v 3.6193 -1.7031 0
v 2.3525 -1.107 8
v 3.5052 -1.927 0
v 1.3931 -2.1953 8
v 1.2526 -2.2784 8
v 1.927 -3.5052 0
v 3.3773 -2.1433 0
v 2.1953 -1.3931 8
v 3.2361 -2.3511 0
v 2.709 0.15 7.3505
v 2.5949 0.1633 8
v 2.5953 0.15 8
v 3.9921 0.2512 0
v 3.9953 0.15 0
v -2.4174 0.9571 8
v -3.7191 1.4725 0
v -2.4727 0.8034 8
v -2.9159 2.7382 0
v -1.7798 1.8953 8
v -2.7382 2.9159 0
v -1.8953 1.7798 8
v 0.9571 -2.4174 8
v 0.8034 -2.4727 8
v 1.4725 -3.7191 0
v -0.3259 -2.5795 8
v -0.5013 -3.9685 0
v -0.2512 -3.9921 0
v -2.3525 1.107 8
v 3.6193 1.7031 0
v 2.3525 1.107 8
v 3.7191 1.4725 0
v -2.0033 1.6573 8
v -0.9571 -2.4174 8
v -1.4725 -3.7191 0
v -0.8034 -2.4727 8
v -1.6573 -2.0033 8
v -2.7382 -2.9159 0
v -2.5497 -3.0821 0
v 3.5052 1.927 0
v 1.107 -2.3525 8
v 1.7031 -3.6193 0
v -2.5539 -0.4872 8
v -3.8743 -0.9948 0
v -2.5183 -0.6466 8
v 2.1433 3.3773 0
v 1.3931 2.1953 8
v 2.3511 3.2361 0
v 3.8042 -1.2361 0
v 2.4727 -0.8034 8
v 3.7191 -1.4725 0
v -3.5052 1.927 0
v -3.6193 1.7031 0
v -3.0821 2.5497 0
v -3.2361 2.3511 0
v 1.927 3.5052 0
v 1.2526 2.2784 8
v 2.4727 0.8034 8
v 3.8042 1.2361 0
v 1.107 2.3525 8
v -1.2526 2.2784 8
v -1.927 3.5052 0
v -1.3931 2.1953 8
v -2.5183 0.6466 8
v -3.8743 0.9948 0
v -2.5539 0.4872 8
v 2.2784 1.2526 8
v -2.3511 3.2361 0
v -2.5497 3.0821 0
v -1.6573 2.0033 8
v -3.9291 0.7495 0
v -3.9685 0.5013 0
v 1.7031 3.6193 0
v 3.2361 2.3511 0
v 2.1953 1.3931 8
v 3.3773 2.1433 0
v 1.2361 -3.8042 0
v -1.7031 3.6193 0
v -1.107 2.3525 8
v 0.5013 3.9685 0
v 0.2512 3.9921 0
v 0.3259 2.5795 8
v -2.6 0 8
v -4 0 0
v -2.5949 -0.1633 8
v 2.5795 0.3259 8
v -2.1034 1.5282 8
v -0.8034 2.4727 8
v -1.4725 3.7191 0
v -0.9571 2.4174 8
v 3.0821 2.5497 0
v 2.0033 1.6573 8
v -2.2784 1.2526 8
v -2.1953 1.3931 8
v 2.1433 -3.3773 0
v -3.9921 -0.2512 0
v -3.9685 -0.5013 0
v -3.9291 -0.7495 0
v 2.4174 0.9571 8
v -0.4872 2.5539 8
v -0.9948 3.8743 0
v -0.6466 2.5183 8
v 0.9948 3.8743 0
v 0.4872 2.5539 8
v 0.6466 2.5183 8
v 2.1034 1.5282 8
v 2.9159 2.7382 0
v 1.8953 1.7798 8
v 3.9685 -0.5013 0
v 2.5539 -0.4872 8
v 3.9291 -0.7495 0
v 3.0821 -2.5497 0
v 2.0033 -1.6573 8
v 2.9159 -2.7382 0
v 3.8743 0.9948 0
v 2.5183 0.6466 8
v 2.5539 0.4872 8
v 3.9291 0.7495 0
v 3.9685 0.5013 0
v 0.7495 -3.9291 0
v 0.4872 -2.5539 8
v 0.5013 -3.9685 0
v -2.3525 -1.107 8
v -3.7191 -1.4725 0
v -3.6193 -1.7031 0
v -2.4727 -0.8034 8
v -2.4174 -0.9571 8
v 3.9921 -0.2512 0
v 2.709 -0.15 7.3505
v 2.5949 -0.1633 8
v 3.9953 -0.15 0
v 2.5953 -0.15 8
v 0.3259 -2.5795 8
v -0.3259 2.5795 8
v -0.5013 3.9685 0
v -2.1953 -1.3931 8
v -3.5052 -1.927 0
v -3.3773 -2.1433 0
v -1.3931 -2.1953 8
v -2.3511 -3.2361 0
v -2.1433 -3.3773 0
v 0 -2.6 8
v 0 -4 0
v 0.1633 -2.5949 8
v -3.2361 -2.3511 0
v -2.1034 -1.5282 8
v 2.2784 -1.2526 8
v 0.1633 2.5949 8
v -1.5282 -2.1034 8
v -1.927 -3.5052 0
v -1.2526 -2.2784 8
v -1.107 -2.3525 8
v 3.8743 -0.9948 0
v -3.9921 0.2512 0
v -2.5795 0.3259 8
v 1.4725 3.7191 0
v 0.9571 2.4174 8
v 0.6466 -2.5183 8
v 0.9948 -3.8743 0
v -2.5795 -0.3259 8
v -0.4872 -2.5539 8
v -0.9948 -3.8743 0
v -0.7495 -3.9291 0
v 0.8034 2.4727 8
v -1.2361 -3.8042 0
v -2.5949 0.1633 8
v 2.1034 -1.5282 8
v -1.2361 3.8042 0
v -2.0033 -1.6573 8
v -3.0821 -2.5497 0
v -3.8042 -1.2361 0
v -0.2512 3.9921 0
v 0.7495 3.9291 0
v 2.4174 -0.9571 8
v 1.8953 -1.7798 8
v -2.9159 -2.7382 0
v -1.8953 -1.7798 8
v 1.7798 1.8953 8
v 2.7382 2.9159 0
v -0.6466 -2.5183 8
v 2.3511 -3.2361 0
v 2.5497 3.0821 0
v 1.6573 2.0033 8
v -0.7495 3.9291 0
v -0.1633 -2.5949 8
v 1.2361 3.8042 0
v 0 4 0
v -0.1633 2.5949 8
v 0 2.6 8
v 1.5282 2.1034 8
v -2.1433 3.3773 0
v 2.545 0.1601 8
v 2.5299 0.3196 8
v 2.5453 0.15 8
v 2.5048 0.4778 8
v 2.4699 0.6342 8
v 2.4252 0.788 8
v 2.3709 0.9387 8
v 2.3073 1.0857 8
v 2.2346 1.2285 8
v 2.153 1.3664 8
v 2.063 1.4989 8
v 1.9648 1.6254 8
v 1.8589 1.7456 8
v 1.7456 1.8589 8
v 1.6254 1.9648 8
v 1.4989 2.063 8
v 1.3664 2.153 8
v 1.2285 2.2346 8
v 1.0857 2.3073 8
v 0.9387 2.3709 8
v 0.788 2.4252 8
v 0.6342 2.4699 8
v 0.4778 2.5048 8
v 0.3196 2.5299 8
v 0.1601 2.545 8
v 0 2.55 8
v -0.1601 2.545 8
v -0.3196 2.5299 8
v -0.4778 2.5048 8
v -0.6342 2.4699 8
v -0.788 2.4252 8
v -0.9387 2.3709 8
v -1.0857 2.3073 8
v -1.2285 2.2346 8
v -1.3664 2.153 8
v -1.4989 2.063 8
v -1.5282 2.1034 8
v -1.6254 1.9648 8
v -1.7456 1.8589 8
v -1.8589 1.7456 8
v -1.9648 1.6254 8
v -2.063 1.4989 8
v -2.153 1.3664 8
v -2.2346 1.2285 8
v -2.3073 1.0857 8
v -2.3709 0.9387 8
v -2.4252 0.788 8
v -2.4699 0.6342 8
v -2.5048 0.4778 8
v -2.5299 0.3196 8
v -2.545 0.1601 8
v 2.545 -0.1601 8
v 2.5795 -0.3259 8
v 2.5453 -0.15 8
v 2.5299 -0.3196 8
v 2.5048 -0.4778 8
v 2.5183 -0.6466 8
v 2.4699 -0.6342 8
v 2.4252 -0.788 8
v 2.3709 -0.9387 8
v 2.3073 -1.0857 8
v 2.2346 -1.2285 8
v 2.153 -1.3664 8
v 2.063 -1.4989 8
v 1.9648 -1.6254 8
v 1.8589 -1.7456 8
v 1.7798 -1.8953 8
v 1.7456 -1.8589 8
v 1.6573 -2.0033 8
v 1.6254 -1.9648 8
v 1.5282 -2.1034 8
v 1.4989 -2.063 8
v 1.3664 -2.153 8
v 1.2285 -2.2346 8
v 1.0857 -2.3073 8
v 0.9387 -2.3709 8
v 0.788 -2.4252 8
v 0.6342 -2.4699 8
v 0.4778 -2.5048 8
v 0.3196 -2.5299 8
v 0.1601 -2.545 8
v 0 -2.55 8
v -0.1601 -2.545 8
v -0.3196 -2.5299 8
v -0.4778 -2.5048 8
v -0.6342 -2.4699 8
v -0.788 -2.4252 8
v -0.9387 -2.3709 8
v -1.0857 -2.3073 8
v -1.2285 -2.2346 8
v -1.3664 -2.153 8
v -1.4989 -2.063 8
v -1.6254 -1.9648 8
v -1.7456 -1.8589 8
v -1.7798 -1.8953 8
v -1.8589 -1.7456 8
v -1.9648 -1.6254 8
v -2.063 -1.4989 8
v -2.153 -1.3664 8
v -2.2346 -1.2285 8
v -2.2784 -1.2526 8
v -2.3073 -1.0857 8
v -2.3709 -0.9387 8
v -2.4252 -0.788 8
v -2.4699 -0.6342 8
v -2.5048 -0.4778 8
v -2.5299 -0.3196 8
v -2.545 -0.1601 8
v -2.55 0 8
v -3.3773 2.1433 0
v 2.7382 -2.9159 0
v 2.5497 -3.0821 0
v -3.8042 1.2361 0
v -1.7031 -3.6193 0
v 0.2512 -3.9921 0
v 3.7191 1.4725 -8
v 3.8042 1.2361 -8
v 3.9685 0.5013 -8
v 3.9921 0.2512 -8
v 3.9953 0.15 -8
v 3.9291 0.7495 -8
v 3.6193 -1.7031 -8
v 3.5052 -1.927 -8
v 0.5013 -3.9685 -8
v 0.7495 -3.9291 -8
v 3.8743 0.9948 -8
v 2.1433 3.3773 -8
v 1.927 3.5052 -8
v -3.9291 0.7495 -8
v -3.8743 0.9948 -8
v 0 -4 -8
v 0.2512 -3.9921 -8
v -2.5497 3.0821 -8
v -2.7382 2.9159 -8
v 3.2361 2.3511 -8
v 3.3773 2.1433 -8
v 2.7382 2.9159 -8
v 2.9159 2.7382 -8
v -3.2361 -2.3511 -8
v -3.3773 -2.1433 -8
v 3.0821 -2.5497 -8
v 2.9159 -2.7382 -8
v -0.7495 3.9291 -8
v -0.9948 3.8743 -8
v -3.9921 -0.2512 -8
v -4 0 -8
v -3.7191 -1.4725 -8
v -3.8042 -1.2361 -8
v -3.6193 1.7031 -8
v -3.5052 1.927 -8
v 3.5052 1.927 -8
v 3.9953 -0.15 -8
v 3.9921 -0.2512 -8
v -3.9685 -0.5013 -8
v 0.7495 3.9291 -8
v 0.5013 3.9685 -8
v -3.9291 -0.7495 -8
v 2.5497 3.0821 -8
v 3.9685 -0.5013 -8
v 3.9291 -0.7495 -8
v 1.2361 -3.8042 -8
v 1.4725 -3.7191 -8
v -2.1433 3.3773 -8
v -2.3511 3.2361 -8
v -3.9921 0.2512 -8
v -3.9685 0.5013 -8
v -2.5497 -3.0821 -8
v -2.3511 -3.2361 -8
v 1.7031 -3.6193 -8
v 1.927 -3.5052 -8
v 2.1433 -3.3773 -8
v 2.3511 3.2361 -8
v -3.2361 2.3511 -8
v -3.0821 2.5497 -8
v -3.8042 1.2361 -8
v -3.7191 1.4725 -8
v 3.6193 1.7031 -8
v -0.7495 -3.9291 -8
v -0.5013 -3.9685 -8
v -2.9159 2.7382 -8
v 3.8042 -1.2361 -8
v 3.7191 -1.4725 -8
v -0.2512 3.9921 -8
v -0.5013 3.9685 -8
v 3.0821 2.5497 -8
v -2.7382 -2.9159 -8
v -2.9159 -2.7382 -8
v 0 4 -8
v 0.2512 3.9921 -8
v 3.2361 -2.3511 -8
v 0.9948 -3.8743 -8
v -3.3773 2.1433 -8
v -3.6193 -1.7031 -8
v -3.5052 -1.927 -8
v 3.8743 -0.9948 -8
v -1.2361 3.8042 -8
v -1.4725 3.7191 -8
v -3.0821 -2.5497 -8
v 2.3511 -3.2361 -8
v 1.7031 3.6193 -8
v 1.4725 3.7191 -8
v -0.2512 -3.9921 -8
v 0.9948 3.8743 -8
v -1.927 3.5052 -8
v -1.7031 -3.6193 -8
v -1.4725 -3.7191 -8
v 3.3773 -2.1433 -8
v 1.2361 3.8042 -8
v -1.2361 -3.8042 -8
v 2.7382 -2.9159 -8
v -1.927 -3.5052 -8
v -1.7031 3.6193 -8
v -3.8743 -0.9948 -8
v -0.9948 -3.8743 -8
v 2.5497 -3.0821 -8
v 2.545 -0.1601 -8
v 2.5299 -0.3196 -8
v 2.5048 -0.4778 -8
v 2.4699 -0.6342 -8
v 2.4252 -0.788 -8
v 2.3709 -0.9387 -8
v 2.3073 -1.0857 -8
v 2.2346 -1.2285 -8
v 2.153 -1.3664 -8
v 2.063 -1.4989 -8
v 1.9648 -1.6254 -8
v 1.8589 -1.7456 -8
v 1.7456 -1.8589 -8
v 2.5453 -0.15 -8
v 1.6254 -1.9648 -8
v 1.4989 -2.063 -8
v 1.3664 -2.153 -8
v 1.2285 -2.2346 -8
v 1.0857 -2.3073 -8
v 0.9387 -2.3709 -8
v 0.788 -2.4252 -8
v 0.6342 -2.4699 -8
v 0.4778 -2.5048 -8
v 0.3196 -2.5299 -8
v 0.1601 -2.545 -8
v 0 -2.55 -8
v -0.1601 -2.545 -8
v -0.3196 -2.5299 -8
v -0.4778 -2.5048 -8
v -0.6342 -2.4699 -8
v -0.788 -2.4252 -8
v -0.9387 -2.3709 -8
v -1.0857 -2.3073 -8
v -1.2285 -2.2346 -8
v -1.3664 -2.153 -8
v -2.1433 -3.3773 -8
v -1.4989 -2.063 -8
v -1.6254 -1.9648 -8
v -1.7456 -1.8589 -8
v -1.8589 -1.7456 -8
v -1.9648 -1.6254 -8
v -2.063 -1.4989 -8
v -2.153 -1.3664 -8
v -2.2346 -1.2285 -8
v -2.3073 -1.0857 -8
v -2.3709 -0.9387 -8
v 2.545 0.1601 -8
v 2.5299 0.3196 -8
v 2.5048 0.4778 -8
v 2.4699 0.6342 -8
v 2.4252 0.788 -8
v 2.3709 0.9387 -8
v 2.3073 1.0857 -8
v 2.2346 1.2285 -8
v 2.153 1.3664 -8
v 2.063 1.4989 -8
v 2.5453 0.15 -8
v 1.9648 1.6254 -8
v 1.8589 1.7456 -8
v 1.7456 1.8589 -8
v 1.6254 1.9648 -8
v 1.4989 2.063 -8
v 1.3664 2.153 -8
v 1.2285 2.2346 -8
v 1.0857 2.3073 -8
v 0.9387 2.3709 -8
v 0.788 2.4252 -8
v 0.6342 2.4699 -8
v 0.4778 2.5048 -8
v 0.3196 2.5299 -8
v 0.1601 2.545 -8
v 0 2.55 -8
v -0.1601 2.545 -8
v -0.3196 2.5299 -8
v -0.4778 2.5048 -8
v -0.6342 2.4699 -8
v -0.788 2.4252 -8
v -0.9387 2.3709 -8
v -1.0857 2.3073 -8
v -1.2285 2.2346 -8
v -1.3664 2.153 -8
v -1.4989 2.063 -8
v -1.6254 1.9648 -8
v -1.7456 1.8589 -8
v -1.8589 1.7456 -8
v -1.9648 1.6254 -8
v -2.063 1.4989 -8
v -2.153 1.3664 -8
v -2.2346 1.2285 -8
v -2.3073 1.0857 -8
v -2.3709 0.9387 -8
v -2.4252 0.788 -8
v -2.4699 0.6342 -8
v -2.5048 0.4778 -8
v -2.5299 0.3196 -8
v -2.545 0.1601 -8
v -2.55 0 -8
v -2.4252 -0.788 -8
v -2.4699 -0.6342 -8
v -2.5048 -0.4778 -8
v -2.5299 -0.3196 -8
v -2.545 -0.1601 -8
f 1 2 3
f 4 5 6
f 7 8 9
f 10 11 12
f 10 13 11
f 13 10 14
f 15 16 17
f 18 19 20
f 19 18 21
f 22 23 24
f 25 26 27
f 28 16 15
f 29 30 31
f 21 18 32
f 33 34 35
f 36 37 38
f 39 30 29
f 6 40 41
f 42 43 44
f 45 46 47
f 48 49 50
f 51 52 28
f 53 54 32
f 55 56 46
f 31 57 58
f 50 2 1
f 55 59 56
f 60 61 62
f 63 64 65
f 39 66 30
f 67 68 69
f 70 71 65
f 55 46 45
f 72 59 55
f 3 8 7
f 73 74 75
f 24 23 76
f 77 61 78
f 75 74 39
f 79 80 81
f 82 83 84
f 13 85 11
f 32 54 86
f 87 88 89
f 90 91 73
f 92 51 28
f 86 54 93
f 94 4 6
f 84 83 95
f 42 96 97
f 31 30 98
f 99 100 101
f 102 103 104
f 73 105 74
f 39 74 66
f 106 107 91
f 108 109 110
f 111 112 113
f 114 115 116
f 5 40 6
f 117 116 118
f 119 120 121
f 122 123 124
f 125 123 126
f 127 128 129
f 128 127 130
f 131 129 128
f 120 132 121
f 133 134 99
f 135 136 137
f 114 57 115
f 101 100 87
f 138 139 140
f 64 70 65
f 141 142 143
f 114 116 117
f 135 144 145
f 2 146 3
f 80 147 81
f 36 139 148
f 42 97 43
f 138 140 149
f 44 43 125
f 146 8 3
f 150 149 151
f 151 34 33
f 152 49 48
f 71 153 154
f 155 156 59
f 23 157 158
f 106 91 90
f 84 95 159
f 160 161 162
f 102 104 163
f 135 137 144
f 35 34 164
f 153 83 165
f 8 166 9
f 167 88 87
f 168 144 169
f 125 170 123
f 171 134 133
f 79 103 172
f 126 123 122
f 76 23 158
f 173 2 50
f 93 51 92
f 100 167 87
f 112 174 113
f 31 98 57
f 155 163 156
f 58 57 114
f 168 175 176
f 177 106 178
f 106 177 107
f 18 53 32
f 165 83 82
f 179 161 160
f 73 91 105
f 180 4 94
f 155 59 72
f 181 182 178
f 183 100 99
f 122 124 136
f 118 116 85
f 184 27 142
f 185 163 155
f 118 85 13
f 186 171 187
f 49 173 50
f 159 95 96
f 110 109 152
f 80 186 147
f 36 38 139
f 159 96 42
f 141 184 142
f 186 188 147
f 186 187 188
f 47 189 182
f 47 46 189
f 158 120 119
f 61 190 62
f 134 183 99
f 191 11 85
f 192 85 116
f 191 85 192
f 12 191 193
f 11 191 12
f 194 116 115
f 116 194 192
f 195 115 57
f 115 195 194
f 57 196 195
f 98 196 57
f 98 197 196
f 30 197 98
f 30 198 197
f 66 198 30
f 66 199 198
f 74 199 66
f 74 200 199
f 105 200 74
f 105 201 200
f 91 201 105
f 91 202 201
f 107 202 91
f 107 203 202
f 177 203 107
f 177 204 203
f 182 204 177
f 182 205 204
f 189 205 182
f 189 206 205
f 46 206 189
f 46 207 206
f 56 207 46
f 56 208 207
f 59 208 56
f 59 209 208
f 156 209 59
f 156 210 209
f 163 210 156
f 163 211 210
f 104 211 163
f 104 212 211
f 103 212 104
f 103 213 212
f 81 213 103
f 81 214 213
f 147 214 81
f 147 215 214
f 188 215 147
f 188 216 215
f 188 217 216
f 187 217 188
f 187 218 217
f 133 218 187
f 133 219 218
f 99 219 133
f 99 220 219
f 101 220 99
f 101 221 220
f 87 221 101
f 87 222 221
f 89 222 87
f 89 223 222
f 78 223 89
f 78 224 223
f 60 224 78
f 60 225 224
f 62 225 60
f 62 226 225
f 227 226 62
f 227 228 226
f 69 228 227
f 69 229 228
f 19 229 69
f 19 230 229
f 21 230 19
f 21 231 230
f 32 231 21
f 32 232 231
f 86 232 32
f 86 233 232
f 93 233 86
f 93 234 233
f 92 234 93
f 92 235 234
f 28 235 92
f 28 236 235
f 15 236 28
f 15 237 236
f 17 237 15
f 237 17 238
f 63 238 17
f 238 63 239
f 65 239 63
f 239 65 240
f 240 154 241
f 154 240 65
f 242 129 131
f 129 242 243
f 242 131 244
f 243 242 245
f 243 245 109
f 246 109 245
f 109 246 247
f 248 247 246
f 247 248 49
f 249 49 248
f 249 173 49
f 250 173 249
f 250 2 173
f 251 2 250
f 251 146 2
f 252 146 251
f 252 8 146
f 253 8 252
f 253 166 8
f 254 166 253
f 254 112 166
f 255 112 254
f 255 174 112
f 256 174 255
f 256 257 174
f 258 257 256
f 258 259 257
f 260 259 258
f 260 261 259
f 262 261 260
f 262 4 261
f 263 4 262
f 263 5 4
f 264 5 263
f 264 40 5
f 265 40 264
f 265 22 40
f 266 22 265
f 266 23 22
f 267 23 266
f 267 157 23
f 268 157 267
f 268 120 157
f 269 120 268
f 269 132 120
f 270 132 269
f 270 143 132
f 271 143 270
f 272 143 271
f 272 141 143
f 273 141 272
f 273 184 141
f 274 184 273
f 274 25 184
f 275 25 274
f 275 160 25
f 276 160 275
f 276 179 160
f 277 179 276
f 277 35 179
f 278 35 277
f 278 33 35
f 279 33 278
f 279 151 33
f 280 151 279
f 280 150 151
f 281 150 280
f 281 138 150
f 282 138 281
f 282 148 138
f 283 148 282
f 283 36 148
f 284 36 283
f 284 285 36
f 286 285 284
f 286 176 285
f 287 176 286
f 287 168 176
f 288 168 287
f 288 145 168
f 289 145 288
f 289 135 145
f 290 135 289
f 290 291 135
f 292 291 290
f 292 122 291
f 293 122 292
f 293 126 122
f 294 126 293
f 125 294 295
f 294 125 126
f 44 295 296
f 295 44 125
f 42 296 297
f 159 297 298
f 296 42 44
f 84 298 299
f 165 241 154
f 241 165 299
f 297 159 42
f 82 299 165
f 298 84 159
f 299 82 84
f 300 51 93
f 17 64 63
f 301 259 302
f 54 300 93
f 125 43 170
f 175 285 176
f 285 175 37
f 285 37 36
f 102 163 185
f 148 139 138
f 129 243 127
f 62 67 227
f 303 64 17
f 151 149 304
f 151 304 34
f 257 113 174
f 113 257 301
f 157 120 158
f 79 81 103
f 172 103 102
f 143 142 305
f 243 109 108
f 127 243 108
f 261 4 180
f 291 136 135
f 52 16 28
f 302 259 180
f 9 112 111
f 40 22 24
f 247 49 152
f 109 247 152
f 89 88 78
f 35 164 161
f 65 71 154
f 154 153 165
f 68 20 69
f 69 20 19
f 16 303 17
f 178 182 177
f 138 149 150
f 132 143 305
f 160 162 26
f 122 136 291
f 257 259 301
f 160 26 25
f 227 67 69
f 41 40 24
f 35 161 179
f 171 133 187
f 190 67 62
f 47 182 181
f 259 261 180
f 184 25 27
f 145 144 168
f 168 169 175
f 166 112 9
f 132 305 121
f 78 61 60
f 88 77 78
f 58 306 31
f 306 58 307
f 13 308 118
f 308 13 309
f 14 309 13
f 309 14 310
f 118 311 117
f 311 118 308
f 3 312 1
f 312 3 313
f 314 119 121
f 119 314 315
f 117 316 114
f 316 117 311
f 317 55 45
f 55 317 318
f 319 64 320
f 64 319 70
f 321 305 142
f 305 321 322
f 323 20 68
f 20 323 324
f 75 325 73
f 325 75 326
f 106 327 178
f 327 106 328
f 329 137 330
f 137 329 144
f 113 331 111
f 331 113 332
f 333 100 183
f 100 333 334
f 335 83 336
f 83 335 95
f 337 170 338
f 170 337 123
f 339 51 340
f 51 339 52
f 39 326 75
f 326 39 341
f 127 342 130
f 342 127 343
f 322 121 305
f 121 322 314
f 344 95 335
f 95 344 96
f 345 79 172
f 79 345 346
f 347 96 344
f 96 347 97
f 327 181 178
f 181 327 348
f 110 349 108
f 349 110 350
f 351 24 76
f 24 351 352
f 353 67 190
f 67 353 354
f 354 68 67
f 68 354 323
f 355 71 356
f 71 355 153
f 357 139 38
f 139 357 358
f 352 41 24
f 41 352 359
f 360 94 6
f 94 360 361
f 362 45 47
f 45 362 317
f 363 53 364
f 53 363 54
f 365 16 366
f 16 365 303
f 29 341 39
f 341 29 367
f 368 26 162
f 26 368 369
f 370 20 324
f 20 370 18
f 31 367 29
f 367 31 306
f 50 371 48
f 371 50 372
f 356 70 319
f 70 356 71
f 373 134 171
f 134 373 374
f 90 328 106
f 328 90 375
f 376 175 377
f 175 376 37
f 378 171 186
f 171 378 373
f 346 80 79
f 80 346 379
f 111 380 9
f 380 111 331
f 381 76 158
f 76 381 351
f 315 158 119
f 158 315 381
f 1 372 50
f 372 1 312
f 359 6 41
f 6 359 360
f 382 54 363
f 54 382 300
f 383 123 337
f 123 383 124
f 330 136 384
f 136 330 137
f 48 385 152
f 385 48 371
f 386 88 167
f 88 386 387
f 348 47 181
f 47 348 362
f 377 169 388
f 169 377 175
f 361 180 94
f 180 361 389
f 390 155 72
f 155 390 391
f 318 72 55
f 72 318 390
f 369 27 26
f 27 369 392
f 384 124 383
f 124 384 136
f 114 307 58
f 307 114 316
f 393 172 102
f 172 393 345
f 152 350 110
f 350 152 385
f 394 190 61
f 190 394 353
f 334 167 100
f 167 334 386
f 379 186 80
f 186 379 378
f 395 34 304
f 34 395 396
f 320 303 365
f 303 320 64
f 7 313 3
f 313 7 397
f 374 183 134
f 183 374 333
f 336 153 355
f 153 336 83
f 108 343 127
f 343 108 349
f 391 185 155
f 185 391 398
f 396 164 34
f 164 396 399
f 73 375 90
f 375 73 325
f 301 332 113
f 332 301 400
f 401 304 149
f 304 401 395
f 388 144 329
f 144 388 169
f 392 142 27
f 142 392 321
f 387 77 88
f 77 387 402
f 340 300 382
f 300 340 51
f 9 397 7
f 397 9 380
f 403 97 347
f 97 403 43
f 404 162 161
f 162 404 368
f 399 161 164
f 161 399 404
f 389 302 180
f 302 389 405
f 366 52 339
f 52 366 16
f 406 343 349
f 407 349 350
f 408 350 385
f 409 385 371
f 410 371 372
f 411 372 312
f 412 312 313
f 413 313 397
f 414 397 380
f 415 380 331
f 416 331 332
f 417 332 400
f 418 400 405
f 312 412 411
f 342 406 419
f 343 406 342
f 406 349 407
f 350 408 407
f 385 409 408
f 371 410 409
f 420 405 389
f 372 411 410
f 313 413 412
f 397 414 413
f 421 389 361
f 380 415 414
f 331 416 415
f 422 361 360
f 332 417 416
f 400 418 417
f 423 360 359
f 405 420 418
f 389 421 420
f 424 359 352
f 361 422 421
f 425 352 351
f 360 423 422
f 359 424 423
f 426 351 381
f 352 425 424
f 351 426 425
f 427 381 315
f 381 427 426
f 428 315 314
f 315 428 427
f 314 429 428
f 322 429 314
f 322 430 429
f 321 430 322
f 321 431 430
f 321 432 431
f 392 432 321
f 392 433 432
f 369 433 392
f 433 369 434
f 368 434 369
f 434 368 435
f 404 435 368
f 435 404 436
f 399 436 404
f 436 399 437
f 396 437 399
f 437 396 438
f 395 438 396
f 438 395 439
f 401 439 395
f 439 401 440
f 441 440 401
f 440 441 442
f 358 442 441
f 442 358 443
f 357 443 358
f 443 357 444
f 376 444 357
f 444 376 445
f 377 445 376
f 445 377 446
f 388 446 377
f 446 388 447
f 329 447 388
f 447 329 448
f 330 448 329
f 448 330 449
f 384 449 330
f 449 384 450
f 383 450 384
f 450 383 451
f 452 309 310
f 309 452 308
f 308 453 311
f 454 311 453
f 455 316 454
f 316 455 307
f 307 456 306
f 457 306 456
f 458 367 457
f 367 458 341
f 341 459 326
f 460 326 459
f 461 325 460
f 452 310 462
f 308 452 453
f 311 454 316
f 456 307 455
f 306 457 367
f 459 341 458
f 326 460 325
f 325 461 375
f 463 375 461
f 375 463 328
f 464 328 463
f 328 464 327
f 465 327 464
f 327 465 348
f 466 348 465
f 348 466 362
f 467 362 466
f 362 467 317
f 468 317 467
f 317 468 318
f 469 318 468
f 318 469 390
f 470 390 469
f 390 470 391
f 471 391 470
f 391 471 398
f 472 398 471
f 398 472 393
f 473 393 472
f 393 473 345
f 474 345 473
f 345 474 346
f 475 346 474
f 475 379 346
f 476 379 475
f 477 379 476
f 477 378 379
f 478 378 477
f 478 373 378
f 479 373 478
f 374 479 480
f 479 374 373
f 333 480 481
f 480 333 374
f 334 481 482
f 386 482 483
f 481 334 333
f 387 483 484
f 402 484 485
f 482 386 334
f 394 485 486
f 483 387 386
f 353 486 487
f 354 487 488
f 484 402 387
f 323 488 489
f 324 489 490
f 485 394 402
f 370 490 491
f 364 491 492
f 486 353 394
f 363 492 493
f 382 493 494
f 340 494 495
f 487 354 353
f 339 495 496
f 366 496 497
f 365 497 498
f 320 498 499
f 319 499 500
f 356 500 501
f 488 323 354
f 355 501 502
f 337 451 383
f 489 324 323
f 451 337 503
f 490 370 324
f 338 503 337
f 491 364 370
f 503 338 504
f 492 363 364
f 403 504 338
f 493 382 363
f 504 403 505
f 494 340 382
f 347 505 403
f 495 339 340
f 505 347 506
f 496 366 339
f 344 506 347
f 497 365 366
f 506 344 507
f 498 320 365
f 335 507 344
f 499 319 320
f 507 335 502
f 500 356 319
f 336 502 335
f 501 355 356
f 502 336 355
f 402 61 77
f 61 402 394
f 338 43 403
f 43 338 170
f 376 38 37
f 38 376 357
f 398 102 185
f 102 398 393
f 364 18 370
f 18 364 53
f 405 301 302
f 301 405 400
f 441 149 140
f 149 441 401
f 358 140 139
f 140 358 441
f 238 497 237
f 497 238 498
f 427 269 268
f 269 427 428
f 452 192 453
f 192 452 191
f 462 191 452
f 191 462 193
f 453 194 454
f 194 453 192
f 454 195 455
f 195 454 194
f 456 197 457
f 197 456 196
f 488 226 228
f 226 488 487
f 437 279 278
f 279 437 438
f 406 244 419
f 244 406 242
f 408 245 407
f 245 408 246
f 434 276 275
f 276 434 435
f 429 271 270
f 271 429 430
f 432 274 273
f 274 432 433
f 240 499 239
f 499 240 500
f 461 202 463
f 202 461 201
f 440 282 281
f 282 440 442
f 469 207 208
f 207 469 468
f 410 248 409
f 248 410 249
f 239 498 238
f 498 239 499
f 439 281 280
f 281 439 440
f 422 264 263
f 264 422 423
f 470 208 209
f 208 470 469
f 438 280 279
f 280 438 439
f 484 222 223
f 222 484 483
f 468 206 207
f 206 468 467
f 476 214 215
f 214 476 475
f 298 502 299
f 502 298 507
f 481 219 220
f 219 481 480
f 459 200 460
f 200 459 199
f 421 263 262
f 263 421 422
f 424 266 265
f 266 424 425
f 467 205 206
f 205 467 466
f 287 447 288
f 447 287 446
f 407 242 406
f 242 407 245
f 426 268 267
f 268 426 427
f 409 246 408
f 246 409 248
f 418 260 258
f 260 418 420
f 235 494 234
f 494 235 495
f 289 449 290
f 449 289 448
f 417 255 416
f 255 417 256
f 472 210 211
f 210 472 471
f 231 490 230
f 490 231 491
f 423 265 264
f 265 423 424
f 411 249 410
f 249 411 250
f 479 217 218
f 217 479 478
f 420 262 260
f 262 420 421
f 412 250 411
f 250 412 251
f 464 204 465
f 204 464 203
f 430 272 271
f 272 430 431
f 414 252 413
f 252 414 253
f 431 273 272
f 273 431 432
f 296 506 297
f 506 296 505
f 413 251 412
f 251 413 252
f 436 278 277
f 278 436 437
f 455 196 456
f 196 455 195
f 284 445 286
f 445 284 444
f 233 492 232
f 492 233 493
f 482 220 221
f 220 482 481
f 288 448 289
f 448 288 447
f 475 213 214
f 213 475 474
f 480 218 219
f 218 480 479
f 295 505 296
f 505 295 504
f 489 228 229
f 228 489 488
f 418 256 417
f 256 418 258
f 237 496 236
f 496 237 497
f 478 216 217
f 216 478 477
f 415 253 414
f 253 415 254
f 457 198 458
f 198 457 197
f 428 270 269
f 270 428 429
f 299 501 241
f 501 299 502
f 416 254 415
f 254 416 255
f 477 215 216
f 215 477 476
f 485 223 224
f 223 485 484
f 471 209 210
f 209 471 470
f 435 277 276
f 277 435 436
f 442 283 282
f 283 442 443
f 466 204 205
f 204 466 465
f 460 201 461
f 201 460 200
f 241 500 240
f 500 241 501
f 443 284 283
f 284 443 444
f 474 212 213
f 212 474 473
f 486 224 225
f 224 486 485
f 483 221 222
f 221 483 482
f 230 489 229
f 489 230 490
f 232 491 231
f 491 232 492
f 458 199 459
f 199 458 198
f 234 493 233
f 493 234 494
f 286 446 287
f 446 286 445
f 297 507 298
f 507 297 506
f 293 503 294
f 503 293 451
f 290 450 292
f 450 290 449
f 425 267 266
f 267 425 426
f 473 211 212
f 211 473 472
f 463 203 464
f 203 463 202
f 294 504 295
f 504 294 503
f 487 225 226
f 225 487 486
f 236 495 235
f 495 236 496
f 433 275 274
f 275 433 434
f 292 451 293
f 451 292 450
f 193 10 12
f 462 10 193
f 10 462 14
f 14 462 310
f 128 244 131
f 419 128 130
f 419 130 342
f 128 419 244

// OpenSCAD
fn=100;

difference() {
    union() {
        cylinder(d1=8, d2=5.2,h=8, $fn=fn);
        translate([0,0,-8]) cylinder(d1=8, d2=8,h=8, $fn=fn);
    }
    
 #   translate([0,0,-10]) cylinder(d=5.1, h=105, $fn=fn);
 #   translate([2.5,0,0]) cube([3,0.3,20], center=true);
}
